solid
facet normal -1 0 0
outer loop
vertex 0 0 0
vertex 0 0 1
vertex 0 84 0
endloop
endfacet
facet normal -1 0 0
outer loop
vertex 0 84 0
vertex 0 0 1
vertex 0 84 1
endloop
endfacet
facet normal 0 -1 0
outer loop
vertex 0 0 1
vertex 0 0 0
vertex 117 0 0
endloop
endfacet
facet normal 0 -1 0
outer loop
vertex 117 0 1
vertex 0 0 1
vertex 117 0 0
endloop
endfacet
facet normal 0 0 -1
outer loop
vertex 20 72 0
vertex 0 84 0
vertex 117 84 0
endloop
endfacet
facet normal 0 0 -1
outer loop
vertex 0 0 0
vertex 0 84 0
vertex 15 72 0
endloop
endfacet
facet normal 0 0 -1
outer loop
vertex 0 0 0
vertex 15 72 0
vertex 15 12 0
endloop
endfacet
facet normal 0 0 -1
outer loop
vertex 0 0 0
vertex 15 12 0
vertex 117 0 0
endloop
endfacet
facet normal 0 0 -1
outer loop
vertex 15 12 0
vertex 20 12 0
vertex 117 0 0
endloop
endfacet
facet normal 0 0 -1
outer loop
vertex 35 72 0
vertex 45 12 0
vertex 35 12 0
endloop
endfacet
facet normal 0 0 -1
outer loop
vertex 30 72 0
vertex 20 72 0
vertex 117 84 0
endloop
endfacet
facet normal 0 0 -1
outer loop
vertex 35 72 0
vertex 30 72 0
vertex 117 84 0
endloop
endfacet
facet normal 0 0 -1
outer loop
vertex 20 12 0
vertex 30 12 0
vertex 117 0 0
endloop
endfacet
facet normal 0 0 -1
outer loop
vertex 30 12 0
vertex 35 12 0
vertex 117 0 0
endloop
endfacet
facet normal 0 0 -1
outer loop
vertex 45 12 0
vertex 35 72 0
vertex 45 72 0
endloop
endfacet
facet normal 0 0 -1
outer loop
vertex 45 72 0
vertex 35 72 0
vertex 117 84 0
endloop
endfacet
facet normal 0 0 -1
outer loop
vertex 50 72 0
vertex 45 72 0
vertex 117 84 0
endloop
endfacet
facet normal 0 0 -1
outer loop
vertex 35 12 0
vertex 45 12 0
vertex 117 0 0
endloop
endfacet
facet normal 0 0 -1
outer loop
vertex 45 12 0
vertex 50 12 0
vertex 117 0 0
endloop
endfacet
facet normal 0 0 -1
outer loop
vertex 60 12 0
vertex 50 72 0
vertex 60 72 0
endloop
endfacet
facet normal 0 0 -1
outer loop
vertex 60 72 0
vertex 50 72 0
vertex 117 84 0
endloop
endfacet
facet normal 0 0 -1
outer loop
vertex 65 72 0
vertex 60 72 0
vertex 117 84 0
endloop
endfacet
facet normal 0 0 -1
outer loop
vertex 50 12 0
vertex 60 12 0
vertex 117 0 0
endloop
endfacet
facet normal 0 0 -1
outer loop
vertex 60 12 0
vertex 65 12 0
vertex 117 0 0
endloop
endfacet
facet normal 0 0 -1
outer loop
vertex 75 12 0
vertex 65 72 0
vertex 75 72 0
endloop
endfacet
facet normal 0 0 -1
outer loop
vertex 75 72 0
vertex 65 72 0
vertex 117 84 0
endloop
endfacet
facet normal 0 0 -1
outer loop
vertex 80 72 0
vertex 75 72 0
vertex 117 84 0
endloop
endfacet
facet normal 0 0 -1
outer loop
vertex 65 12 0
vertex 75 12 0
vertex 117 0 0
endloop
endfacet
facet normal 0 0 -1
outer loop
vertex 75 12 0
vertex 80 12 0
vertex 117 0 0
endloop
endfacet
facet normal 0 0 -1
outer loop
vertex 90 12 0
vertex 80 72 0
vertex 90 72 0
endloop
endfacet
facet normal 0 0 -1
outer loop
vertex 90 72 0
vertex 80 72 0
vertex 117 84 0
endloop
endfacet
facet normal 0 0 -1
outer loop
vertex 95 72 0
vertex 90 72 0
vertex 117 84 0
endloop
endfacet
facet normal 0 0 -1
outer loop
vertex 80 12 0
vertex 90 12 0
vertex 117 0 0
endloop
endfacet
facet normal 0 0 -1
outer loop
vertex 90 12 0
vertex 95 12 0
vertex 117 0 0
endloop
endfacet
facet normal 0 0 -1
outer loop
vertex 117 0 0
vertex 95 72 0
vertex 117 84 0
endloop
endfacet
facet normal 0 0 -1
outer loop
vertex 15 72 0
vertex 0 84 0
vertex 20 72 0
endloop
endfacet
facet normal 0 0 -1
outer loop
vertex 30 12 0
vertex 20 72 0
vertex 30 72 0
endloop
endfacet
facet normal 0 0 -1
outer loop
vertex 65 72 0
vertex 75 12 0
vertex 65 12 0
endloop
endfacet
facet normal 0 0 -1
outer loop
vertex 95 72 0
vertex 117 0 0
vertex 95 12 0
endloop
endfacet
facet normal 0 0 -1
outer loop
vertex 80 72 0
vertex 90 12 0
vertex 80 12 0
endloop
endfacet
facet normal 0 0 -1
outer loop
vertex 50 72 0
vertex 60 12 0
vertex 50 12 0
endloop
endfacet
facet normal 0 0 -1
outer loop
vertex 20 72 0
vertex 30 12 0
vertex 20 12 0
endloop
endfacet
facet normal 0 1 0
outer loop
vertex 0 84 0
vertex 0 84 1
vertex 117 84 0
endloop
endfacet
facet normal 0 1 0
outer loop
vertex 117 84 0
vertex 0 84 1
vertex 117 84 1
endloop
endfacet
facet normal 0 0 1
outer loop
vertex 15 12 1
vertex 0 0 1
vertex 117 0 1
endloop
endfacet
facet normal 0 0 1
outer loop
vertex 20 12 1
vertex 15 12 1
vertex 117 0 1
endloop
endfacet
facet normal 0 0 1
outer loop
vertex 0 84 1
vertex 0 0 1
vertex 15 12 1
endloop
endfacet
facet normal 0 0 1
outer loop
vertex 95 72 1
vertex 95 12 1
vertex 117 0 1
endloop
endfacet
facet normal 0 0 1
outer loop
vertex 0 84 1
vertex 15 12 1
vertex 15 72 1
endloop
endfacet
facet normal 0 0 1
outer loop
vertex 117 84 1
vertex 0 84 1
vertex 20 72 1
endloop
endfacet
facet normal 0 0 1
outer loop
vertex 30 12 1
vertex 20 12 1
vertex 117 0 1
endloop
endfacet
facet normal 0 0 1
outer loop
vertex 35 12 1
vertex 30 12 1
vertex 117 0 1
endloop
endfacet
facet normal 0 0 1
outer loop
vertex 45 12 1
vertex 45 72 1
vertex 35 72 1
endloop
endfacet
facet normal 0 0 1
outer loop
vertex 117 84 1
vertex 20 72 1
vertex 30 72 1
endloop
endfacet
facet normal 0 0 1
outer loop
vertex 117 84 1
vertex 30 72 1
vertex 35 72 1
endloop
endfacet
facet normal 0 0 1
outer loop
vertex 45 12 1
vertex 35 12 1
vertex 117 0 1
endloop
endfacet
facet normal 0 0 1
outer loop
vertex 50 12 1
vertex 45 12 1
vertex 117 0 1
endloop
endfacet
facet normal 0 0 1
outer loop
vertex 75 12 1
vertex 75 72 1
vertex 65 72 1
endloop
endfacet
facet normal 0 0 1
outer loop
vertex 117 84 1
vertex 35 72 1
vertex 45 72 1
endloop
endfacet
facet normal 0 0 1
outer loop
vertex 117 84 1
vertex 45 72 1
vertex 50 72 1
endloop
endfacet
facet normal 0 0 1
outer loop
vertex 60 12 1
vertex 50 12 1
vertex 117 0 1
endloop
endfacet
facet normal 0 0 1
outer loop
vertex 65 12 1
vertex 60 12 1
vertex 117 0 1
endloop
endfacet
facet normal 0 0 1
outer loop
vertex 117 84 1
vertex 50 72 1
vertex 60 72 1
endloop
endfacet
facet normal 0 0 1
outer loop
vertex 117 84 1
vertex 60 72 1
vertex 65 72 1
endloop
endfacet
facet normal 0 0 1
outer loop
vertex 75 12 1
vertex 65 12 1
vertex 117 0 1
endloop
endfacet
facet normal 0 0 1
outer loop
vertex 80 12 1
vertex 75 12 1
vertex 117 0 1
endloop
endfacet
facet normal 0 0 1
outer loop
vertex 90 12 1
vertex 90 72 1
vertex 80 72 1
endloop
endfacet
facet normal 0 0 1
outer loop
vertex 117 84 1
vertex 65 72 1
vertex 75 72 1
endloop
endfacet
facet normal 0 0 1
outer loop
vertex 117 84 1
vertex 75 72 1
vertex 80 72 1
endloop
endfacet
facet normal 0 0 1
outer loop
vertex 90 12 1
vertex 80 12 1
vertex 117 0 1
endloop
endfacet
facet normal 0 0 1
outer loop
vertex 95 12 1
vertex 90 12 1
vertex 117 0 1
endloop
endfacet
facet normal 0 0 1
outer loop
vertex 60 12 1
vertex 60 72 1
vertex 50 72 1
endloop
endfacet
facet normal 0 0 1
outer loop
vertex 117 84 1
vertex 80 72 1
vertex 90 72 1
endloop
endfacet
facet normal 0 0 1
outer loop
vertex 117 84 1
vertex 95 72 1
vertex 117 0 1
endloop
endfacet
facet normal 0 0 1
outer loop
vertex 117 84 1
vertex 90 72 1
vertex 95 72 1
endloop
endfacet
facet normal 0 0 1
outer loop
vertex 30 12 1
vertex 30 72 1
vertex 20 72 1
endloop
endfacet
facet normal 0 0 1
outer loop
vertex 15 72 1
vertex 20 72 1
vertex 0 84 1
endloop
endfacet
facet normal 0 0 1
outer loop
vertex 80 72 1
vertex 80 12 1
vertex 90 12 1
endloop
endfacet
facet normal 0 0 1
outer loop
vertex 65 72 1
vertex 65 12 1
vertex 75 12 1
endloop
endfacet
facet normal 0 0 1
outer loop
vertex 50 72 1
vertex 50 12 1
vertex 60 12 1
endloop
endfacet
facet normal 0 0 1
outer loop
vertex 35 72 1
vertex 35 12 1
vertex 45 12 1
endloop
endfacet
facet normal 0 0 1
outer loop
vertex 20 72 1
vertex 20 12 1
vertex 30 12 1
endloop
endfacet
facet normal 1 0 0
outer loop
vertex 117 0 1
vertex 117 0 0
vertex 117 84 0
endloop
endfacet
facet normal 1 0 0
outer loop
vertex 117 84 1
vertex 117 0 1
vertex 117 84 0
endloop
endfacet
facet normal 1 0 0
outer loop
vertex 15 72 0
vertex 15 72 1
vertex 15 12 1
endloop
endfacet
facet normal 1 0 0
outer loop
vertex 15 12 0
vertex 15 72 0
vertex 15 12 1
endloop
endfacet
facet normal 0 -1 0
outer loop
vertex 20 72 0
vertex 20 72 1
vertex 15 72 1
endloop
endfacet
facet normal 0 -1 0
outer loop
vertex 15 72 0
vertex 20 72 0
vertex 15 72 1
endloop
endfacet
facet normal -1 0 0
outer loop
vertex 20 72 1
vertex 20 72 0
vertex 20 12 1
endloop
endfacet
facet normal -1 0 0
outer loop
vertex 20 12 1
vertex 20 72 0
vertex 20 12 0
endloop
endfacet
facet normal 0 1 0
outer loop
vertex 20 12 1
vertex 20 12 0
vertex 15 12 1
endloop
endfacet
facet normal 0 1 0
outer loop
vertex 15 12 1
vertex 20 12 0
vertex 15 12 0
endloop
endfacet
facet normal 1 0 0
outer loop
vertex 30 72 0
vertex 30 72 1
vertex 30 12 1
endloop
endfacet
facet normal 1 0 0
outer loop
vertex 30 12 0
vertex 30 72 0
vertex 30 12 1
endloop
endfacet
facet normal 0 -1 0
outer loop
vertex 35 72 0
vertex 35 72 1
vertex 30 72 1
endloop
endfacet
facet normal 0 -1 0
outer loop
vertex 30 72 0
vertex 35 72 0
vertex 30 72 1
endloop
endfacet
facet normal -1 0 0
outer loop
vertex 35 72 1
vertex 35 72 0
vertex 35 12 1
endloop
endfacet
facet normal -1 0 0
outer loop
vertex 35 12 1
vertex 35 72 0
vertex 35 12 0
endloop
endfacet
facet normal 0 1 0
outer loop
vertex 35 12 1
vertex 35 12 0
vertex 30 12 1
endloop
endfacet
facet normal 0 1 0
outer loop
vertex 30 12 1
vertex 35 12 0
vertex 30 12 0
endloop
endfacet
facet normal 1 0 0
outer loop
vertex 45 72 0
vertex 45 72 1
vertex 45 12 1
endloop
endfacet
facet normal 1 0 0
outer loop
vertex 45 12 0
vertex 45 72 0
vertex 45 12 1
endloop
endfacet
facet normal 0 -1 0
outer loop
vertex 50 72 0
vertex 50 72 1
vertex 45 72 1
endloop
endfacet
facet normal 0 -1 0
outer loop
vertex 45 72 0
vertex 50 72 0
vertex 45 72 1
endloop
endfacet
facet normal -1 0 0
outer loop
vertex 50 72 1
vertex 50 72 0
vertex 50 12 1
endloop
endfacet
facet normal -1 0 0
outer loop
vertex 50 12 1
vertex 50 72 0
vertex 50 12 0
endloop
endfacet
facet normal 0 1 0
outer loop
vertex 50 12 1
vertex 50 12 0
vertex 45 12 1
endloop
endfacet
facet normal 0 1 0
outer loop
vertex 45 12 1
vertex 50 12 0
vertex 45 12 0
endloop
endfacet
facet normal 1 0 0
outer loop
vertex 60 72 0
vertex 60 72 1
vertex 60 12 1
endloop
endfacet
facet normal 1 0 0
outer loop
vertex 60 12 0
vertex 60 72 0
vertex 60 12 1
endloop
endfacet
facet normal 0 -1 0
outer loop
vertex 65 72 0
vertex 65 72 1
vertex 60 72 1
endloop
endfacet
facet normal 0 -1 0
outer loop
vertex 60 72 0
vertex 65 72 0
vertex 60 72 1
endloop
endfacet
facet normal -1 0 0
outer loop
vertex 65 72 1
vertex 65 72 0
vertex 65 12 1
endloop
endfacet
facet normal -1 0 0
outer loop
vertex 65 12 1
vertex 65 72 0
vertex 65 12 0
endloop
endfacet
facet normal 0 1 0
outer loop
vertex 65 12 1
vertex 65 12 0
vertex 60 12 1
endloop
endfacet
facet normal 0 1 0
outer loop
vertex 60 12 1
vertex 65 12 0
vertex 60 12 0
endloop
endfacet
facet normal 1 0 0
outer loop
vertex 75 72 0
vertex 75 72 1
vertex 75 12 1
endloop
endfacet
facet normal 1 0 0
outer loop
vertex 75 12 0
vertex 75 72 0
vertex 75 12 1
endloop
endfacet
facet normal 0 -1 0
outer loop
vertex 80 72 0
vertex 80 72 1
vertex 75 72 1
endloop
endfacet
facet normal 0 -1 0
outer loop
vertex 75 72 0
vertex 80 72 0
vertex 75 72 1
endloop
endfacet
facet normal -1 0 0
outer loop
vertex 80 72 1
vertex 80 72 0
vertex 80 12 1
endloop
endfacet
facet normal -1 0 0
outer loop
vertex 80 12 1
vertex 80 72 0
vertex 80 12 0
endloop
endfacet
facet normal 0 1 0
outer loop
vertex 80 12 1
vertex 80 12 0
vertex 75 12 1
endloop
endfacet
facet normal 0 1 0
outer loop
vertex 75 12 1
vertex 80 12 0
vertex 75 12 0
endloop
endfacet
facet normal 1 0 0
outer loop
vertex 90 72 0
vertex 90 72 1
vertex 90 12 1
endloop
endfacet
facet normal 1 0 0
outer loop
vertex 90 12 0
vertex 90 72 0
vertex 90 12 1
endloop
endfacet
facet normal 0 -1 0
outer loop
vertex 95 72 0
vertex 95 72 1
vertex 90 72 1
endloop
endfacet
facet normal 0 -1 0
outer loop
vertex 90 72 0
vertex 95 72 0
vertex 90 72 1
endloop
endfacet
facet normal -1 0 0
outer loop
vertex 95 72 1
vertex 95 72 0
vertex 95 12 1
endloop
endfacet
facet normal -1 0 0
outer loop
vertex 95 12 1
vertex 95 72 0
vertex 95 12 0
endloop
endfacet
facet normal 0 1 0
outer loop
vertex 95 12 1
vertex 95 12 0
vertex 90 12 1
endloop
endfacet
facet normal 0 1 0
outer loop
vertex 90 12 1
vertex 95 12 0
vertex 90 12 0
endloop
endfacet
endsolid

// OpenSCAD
TOTAL_GROUND_LENGTH=117;
TOTAL_GROUND_WIDTH=84;

GROUND_HEIGHT=1;
FLOOR_HOLE_WIDTH=5;
FLOOR_HOLE_LENGTH=60;


//ground floor - holes
difference(){
 cube([TOTAL_GROUND_LENGTH,TOTAL_GROUND_WIDTH,GROUND_HEIGHT]);

 for( i= [15:15:TOTAL_GROUND_LENGTH-15]){
  translate([i,TOTAL_GROUND_WIDTH/2-FLOOR_HOLE_LENGTH/2,-1]){
   cube([FLOOR_HOLE_WIDTH,FLOOR_HOLE_LENGTH,GROUND_HEIGHT+2]);
  }
 }
}
